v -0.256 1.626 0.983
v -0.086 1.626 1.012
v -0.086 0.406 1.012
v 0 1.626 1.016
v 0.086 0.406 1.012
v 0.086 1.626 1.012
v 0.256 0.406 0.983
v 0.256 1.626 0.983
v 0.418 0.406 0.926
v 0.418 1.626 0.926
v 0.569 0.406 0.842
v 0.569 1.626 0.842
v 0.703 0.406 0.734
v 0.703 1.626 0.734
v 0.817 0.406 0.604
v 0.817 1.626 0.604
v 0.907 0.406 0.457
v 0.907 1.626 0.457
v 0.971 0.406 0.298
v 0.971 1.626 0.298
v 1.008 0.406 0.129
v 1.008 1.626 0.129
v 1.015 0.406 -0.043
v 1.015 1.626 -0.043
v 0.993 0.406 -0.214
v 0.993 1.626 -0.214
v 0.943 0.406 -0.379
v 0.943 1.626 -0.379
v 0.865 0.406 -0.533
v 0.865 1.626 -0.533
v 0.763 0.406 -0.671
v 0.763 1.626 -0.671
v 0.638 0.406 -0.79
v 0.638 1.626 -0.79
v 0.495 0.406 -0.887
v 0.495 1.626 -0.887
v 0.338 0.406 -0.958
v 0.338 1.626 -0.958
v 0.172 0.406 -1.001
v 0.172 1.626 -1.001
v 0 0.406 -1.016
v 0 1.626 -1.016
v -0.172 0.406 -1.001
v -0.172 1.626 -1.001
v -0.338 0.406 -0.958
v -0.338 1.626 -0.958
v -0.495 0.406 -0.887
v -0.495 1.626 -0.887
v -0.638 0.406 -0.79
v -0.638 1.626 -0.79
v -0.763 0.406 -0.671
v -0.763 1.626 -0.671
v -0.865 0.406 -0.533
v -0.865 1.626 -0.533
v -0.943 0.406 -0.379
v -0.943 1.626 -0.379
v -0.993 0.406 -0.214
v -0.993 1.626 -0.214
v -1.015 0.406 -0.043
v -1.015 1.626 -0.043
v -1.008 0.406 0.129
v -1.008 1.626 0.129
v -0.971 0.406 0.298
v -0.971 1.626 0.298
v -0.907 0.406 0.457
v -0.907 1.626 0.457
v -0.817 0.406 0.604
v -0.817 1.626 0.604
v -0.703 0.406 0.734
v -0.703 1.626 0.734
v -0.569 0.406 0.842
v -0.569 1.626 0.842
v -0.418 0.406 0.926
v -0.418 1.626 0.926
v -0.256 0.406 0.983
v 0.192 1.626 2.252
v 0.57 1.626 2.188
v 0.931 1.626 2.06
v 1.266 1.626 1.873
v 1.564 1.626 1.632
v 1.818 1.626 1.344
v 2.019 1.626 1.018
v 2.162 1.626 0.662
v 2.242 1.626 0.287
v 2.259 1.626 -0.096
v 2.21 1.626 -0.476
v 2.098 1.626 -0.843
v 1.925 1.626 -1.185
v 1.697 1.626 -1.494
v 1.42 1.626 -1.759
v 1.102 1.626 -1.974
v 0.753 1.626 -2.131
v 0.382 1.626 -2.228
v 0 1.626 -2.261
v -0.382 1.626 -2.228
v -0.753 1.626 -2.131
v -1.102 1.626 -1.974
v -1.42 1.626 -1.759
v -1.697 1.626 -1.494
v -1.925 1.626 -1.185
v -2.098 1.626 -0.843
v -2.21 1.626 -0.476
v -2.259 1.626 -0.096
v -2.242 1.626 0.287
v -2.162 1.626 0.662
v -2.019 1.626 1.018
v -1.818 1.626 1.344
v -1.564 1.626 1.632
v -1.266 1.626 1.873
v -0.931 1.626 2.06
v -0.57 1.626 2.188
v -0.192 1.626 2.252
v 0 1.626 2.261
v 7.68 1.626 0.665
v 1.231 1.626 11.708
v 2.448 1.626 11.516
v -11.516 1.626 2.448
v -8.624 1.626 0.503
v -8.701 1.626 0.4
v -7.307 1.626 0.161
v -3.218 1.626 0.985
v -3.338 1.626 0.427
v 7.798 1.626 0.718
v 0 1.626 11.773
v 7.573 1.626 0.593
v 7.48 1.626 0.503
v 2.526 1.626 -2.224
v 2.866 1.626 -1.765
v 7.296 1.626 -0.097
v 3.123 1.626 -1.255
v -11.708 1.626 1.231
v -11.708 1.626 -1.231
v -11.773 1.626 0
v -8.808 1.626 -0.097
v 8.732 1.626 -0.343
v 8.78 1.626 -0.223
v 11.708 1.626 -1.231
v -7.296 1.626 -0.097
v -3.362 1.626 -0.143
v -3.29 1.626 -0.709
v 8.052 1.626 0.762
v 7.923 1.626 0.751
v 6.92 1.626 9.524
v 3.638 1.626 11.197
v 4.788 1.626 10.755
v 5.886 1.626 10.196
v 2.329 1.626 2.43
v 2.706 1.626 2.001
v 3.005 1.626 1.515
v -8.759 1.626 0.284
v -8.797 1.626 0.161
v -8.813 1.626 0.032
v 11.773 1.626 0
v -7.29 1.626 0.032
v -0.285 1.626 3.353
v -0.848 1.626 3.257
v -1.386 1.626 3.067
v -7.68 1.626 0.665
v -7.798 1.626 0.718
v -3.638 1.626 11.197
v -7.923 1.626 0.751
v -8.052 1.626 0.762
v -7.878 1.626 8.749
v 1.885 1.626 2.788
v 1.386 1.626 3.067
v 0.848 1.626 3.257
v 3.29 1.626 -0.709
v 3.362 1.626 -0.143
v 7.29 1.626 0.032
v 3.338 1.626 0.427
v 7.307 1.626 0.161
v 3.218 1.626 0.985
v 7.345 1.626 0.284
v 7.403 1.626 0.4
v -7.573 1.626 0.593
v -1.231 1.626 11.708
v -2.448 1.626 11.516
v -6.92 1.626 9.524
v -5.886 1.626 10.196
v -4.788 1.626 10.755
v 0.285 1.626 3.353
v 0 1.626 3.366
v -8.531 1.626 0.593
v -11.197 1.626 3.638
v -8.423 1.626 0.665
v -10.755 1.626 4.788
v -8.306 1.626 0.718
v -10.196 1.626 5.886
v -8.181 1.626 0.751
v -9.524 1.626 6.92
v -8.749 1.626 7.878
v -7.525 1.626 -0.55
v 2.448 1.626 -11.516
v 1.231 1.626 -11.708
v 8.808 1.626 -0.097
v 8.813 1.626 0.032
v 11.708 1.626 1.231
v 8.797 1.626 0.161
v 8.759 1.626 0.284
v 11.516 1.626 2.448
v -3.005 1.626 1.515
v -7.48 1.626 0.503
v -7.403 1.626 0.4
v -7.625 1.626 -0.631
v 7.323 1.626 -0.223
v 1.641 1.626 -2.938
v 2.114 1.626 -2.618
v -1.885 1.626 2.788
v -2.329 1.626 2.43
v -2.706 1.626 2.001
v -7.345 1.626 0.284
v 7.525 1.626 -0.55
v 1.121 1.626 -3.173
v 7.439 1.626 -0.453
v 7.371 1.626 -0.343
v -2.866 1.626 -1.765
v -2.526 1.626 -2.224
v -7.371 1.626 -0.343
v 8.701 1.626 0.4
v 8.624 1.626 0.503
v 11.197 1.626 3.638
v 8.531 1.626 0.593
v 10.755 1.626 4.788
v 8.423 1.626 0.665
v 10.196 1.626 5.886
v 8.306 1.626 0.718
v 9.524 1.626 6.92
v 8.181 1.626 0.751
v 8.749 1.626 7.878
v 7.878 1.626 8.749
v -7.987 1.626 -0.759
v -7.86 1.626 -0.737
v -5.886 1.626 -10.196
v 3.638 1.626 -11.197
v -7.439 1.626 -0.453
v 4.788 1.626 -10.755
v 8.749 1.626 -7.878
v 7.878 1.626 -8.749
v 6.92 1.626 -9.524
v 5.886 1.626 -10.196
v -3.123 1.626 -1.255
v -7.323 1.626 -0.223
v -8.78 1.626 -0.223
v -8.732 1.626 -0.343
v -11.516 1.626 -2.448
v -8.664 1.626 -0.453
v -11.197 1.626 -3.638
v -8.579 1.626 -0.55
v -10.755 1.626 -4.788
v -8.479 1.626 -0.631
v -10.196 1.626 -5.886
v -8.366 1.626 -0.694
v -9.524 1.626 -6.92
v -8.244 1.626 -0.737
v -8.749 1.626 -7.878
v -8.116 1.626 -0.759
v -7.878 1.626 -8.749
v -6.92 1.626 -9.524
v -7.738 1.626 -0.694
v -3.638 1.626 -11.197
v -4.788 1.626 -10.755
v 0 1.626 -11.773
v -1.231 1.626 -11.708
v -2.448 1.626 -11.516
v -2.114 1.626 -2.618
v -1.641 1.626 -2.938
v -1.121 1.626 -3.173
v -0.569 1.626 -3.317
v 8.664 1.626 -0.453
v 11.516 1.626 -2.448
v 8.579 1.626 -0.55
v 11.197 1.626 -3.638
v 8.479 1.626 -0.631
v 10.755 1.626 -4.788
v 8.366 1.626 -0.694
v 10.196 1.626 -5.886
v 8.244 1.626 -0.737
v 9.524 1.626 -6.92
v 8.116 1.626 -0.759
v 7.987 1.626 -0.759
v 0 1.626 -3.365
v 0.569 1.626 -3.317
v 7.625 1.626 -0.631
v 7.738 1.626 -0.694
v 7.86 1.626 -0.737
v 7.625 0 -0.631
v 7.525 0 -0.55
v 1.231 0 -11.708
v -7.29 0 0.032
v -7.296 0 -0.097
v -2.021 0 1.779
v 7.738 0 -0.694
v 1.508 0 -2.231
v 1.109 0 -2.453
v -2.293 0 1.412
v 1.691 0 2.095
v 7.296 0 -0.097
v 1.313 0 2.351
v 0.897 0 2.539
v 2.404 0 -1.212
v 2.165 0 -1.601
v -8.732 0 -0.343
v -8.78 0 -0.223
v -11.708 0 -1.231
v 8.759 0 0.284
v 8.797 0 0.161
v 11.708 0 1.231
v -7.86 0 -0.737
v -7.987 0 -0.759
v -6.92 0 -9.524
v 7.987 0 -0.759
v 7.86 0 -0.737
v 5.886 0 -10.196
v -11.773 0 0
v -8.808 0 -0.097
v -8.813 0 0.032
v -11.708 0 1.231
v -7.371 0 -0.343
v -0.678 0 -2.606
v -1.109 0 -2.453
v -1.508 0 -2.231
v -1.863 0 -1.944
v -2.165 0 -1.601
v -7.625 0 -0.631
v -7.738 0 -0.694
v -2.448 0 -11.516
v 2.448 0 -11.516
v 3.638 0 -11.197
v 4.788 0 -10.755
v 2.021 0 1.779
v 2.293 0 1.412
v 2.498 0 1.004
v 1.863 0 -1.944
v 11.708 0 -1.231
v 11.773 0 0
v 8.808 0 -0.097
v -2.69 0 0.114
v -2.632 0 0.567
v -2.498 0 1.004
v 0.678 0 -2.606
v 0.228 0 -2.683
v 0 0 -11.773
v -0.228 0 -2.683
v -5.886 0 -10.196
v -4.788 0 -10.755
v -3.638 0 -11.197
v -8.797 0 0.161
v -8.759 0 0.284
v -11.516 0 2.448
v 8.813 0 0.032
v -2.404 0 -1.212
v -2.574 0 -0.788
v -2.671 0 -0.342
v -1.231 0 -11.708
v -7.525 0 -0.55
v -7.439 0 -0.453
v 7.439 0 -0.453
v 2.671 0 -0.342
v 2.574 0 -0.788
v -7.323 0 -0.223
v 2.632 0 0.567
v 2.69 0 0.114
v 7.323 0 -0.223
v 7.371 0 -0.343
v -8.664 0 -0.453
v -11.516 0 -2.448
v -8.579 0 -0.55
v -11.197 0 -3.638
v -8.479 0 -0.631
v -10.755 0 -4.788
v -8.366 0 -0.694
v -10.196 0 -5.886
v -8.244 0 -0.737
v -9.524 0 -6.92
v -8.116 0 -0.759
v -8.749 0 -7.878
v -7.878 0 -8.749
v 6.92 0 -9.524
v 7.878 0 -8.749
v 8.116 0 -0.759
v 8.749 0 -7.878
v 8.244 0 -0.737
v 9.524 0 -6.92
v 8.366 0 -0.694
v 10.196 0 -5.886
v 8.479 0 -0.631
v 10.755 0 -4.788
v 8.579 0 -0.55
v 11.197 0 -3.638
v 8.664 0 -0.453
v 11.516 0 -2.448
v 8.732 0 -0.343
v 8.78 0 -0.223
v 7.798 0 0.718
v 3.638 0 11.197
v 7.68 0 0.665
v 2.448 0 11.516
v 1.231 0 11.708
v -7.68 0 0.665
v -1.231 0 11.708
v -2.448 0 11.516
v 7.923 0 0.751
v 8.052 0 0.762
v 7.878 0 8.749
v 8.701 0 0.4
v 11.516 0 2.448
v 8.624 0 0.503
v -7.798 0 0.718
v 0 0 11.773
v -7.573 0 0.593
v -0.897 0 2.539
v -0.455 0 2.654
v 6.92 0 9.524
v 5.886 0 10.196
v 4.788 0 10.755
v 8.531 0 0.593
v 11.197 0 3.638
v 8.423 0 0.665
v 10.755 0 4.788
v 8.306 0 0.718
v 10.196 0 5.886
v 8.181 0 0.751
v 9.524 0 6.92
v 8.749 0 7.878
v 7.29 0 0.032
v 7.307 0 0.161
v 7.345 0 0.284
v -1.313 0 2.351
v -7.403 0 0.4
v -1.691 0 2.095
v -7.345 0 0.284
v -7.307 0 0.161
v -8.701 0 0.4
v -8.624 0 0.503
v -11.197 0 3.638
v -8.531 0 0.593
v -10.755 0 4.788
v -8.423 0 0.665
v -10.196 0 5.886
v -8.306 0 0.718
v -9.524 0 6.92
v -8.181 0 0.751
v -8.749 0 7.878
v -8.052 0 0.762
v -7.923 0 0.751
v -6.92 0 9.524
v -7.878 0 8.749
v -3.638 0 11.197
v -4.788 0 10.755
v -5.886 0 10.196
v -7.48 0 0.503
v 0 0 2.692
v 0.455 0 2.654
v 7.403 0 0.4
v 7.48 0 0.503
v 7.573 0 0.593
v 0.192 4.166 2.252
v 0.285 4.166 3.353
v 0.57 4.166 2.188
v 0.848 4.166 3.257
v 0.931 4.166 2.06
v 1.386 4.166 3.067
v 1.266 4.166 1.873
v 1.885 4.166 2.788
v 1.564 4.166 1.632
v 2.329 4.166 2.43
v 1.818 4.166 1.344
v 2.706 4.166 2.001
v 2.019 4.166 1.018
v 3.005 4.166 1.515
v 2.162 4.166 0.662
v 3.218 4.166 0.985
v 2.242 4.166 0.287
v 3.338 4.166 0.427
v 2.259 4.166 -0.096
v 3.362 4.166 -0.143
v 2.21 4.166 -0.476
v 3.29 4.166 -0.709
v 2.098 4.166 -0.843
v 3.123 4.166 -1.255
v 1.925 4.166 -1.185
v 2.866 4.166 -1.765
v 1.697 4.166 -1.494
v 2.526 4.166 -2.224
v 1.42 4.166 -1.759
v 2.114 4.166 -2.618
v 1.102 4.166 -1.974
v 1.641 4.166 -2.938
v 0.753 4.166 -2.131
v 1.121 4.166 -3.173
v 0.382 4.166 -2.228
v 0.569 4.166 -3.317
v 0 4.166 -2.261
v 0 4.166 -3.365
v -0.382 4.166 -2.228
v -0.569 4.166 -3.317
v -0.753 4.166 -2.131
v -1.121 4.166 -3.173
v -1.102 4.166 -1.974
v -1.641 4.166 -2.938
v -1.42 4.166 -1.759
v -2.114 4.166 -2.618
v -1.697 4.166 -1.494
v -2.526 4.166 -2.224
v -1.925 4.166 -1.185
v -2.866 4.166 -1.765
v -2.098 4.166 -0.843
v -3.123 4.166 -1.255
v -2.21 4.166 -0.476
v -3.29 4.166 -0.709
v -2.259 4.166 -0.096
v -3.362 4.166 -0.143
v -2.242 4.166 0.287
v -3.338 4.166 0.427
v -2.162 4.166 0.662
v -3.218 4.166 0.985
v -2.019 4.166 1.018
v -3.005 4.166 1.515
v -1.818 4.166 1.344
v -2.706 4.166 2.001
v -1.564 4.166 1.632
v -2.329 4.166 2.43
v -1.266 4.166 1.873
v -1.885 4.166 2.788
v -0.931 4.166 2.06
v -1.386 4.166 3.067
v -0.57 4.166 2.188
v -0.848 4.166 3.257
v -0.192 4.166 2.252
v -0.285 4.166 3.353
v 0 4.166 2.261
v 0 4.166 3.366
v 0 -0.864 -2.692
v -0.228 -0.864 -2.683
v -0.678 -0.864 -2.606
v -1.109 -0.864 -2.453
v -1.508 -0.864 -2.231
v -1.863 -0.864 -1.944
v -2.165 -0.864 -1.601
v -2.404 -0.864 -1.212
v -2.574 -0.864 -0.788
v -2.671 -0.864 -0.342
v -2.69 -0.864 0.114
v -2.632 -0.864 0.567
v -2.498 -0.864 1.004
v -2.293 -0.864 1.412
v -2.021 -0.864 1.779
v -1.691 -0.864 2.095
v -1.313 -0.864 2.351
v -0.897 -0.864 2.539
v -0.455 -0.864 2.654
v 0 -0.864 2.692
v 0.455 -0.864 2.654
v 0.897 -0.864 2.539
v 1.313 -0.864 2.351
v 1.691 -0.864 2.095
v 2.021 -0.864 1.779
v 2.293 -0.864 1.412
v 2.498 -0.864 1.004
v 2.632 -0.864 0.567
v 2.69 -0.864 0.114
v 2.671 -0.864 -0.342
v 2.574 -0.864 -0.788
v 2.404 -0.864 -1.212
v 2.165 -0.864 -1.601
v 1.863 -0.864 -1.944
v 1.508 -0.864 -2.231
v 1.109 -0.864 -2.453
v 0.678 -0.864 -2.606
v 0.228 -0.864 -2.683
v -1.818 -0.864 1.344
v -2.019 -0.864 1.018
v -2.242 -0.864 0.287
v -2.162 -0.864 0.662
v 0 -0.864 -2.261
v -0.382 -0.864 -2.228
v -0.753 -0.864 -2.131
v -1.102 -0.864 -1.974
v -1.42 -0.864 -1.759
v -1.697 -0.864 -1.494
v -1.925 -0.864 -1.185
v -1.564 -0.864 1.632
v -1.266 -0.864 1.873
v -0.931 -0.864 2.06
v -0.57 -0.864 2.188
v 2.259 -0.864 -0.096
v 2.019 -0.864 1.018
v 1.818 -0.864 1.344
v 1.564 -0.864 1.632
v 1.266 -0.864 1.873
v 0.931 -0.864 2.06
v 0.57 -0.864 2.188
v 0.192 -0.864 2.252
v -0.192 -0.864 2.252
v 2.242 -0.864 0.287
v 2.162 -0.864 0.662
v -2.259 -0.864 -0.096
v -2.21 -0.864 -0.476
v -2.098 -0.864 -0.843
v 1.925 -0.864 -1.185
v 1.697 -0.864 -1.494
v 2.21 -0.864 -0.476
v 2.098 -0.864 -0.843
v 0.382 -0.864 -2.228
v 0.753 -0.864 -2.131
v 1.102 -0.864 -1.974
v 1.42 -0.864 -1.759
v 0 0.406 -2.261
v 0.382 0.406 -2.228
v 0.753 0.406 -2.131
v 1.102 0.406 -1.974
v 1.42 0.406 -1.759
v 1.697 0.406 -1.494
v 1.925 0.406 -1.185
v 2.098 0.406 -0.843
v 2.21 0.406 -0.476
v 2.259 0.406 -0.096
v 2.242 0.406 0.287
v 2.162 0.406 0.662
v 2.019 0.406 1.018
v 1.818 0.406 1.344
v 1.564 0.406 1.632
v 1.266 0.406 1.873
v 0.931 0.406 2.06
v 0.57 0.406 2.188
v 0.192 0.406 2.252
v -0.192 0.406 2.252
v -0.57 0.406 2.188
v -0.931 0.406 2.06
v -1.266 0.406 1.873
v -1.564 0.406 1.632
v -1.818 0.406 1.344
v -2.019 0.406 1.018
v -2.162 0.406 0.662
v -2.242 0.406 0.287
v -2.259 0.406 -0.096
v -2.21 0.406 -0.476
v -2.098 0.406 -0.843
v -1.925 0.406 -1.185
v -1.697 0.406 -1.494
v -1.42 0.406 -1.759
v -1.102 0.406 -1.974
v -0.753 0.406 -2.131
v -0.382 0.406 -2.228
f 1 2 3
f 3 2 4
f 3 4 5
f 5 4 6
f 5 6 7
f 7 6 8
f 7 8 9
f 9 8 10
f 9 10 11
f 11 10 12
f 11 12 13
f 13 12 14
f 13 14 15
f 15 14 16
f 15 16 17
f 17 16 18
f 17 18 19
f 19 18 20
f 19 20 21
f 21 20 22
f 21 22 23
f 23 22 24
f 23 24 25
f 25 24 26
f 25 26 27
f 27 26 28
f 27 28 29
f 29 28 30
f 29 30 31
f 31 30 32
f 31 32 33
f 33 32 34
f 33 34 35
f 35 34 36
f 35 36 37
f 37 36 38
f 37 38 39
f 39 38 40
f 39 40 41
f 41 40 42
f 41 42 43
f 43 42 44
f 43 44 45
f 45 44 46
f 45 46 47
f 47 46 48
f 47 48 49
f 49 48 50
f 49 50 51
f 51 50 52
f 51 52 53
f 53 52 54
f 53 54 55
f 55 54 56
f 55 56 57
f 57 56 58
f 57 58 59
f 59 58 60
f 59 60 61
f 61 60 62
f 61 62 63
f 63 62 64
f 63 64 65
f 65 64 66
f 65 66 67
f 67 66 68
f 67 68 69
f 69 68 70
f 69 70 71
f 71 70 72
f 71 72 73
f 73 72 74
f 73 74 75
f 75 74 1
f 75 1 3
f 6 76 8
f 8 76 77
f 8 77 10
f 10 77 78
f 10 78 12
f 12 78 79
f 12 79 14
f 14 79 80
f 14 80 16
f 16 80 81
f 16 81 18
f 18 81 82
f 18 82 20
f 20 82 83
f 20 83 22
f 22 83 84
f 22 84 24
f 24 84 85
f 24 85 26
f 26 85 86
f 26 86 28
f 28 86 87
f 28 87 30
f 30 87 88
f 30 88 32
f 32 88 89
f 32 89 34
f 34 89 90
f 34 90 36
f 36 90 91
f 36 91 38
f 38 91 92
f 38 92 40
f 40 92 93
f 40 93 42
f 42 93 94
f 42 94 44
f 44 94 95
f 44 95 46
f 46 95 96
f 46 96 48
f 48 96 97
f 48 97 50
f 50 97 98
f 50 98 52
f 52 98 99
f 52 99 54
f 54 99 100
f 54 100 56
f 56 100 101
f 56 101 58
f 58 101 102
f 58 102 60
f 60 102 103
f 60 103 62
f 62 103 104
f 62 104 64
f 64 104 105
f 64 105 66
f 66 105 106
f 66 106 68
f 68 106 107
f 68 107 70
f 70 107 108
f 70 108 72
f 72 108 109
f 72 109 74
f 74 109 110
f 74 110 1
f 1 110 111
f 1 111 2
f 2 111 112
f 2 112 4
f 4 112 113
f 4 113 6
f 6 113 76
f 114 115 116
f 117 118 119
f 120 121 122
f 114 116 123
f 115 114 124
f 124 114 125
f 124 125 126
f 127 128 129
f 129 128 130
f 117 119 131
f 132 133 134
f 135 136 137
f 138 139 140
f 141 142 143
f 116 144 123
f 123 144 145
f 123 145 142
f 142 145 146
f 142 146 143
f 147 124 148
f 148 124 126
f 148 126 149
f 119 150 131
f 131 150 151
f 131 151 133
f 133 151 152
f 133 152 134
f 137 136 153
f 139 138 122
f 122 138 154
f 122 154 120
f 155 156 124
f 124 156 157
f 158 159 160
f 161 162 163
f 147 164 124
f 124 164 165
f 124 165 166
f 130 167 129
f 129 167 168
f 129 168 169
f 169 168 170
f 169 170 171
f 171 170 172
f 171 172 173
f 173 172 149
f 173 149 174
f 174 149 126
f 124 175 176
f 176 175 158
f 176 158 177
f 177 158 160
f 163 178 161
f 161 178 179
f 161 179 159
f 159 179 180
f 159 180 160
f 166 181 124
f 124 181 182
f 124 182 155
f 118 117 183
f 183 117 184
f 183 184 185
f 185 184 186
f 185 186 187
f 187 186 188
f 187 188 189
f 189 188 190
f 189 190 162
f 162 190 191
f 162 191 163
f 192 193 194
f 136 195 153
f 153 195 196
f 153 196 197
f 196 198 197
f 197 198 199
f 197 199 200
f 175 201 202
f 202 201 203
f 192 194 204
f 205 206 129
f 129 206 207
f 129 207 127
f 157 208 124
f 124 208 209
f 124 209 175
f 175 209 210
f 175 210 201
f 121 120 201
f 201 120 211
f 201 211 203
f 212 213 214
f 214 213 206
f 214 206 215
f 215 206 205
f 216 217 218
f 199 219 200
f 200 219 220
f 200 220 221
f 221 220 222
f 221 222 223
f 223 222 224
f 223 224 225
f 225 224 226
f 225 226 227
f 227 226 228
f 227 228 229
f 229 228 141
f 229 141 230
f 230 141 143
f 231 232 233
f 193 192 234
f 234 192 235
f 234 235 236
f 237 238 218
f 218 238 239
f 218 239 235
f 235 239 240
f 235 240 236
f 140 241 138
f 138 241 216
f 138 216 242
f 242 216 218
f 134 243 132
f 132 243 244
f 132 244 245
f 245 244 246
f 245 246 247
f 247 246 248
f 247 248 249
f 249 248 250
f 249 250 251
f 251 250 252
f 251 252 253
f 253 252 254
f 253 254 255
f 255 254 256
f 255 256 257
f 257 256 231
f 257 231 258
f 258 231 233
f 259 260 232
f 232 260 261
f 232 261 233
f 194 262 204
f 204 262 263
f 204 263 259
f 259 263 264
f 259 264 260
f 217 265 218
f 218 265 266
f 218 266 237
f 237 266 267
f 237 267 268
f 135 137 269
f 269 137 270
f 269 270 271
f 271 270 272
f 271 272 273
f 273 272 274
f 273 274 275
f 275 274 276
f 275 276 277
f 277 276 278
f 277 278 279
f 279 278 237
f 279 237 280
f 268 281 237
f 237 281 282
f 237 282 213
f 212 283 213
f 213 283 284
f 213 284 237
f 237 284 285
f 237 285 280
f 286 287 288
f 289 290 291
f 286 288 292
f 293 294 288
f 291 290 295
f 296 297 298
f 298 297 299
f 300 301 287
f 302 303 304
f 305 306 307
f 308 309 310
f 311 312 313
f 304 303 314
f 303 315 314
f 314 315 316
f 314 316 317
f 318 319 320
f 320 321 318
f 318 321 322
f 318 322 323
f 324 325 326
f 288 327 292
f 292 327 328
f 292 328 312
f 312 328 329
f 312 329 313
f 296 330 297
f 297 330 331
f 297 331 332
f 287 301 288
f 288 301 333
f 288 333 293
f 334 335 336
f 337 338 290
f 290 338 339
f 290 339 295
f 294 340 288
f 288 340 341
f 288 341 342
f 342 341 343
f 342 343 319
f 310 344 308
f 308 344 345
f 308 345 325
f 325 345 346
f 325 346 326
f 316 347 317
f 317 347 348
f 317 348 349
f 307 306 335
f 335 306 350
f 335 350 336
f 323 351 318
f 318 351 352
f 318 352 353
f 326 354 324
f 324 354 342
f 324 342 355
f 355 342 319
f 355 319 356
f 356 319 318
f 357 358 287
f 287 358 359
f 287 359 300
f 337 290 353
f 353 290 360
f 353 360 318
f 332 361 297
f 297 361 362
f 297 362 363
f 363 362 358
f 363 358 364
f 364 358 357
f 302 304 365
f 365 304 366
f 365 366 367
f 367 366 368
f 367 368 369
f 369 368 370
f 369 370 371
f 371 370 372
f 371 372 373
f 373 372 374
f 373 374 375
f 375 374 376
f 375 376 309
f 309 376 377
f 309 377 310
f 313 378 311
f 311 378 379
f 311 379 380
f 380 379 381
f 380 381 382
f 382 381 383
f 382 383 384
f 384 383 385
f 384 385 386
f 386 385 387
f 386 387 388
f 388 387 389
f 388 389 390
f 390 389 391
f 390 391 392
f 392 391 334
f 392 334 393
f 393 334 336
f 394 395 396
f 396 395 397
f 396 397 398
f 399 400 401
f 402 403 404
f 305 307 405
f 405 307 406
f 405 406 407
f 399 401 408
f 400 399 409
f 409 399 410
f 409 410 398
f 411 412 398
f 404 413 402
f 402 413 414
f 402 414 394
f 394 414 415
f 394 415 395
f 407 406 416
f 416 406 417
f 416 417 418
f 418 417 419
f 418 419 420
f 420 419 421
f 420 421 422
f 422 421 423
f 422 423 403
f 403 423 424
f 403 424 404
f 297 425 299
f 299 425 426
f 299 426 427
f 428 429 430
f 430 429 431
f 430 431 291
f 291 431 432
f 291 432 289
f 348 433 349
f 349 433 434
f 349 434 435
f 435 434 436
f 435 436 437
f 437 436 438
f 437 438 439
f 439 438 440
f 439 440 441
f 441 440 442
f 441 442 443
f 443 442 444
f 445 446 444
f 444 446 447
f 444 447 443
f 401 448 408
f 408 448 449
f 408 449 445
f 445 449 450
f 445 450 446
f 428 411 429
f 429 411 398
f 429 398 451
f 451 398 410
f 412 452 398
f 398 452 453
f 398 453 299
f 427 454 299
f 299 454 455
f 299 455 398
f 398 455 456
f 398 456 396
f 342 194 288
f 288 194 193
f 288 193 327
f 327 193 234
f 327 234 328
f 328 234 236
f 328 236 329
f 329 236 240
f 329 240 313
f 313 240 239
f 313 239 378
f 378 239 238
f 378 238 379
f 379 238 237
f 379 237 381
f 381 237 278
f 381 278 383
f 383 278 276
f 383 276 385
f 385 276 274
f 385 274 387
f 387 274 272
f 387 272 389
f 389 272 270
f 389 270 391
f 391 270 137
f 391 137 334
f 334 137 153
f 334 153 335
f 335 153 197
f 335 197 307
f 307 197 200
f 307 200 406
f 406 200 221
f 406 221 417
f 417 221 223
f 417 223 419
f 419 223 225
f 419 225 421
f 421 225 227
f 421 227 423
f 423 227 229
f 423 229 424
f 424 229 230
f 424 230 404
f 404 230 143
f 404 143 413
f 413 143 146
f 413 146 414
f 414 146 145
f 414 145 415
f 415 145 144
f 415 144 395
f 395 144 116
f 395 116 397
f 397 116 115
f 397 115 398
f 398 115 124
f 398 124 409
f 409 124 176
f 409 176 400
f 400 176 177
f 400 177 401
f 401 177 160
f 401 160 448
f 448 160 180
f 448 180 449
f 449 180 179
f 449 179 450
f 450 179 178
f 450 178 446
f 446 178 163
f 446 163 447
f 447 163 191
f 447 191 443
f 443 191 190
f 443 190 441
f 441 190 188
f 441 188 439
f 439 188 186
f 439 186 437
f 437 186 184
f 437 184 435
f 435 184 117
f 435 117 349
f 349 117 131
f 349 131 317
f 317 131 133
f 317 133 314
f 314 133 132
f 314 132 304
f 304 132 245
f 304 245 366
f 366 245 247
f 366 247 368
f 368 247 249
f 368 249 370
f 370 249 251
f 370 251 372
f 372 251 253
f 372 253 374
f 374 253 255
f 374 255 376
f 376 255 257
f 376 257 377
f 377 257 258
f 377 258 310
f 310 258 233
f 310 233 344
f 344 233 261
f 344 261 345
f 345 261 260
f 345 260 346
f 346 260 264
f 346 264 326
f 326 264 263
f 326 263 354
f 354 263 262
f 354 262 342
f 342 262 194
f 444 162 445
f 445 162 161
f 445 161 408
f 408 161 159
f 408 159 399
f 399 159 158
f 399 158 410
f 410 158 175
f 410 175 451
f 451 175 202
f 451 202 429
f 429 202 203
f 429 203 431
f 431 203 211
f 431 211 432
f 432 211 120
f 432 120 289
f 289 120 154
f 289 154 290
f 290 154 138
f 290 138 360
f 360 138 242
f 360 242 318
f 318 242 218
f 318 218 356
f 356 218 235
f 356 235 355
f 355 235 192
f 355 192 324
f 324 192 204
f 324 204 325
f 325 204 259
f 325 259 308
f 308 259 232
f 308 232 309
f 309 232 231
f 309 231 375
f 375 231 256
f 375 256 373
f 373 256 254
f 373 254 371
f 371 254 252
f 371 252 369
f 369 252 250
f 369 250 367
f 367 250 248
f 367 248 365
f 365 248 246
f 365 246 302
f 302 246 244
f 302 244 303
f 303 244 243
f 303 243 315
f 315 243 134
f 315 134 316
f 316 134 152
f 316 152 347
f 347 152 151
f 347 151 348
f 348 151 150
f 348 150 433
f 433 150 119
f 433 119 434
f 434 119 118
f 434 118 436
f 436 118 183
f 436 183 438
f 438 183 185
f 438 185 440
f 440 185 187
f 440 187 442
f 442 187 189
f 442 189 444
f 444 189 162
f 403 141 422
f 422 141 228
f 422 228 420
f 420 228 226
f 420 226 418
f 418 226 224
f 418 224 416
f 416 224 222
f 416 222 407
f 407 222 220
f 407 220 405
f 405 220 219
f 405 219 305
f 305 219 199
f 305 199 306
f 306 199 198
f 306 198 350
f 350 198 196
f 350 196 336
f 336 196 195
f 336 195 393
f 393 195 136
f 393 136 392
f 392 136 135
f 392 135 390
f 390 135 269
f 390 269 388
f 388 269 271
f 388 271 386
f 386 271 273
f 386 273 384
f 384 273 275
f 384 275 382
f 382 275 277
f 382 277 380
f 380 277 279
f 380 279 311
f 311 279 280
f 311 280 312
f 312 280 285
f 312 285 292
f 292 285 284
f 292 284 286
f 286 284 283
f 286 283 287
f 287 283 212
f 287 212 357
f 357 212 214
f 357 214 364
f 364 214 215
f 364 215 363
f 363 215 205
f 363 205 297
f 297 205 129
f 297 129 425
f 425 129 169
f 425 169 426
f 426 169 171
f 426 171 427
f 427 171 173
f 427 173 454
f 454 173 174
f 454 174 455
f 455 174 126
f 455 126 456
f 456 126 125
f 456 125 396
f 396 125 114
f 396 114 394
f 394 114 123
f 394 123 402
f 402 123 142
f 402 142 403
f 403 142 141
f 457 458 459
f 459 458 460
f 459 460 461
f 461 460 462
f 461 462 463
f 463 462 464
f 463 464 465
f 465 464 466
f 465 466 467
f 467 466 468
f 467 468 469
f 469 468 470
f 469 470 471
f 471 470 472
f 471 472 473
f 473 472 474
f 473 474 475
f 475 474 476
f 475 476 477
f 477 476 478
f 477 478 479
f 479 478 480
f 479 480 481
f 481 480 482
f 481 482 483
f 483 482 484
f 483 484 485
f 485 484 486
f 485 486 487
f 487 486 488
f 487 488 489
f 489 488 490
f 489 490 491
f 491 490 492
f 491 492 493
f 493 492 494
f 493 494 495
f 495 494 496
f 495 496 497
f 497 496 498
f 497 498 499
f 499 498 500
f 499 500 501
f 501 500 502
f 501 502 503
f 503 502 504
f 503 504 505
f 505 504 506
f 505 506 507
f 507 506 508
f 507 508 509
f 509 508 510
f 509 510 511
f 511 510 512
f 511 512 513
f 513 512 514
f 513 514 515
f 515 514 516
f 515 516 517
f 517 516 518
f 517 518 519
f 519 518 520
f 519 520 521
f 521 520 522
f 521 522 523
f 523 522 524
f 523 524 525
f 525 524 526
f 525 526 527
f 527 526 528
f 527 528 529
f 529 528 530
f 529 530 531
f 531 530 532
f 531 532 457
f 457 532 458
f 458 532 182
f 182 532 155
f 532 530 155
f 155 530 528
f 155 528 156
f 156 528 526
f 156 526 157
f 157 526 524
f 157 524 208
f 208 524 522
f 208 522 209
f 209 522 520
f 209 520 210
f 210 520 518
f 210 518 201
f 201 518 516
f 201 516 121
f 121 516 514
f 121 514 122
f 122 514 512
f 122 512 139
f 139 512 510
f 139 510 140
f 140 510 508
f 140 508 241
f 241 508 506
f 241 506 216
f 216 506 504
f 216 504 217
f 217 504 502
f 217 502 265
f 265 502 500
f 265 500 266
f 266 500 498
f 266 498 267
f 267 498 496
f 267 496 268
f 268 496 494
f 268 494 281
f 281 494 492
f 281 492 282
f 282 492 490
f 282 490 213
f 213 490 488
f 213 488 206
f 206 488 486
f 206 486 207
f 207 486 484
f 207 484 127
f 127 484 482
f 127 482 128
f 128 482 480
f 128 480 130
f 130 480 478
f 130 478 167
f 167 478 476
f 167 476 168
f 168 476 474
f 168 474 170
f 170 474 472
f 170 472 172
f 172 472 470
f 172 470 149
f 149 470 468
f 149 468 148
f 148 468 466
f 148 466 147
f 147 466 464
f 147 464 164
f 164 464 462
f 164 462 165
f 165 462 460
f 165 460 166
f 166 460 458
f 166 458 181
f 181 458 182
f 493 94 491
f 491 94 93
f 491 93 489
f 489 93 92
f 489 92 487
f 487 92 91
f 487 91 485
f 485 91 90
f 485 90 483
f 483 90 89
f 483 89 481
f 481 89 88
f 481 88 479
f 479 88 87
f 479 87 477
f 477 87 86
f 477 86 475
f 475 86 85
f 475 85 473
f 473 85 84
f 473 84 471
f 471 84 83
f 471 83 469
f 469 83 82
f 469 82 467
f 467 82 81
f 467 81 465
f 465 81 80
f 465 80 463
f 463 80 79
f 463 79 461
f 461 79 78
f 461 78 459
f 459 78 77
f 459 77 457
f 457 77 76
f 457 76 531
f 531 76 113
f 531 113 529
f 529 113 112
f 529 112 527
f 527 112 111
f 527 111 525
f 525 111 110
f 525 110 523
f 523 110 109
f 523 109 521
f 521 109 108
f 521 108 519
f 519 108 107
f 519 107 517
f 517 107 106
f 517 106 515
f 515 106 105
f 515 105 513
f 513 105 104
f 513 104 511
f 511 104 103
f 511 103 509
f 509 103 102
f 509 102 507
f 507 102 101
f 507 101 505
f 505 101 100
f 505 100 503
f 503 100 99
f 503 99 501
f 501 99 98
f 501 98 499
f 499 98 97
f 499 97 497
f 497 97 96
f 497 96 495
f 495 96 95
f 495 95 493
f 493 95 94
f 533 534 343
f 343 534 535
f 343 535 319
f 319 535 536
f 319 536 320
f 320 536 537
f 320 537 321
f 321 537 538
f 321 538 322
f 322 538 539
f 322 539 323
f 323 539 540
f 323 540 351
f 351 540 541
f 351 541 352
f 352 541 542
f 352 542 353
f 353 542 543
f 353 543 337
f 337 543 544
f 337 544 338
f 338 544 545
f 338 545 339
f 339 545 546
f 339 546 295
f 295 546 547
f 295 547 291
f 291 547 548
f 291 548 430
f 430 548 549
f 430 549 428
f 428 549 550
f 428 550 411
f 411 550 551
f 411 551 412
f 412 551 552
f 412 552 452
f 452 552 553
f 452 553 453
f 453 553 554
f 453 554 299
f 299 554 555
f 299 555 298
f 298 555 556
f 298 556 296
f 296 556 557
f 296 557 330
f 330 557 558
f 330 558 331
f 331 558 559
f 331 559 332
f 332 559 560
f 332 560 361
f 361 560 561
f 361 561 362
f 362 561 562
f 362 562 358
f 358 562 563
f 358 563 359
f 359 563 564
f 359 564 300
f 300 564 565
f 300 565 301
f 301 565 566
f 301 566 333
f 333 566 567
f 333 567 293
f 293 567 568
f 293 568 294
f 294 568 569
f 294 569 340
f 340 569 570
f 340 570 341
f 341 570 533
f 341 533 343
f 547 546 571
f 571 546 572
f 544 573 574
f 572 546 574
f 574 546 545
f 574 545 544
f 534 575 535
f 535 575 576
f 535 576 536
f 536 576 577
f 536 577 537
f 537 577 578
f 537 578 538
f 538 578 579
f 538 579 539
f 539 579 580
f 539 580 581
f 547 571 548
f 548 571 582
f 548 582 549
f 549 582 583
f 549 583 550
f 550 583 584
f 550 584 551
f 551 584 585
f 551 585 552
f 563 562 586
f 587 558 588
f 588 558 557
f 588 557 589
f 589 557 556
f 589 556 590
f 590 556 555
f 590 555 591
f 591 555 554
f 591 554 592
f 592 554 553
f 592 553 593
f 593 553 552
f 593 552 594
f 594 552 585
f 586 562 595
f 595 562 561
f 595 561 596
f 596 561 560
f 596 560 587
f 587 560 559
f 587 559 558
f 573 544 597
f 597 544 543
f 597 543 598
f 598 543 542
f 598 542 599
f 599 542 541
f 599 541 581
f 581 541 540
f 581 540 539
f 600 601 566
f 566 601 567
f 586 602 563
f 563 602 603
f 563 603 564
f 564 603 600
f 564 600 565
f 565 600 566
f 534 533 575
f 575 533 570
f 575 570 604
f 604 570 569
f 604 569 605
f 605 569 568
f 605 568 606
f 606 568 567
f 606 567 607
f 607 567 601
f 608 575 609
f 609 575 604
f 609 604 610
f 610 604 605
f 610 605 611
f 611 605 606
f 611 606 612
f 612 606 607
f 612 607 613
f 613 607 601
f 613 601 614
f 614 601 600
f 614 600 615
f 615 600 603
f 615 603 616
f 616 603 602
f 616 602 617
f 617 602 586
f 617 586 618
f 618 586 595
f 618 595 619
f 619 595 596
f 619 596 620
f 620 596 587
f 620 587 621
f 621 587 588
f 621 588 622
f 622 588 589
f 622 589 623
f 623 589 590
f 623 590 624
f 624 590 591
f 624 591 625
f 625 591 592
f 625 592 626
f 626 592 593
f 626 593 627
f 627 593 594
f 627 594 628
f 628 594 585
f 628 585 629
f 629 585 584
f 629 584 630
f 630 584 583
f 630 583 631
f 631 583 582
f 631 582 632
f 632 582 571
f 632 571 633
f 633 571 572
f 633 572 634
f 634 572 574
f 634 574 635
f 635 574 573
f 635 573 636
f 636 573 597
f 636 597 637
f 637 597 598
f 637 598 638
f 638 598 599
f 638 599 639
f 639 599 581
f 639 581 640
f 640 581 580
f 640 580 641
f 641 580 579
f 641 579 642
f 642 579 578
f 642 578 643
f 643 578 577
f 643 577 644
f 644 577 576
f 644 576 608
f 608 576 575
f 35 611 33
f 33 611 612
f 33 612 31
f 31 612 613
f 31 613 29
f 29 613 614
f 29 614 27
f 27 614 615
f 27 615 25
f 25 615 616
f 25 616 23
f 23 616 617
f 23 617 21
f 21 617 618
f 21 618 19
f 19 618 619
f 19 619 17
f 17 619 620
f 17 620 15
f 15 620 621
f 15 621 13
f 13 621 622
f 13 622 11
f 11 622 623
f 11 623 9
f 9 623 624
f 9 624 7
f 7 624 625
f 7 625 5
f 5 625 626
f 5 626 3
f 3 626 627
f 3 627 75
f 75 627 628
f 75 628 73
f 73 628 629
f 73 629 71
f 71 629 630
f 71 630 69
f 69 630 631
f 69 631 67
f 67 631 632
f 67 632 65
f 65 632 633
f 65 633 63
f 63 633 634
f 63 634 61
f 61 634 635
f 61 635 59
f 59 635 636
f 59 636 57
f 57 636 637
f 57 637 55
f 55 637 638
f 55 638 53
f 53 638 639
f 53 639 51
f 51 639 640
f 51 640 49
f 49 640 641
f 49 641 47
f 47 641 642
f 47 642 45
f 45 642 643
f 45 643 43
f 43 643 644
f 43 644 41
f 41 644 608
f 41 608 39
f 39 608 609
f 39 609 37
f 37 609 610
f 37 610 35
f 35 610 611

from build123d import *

# Parameters (mm, degrees)
SKETCH1_R           = 11.7729
SKETCH1_R_2         = 1.016
BOSS_EXTRUDE1_DEPTH = 1.6256
SKETCH2_R           = 0.762
CUT_EXTRUDE1_DEPTH  = 17.728566112
SKETCH3_R           = 3.3655
SKETCH3_R_2         = 2.2606
BOSS_EXTRUDE2_DEPTH = 2.54
SKETCH4_R           = 2.6924
BOSS_EXTRUDE3_DEPTH = 0.8636
SKETCH5_R           = 2.2606
CUT_EXTRUDE2_DEPTH  = 1.27


with BuildPart() as part:
    # Sketch1 → Boss-Extrude1 (new body)
    with BuildSketch(Plane(origin=(0, 0, 0), x_dir=(1, 0, 0), z_dir=(0, 1, 0))):
        with Locations(Location((0, 0, 0), (0, 0, 270))):
            Circle(SKETCH1_R)
        with Locations(Location((0, 0, 0), (0, 0, 270))):
            Circle(SKETCH1_R_2, mode=Mode.SUBTRACT)
    extrude(amount=BOSS_EXTRUDE1_DEPTH)

    # Sketch2 → Cut-Extrude1 (cut, through all)
    with BuildSketch(Plane(origin=(0, 1.6256, 0), x_dir=(1, 0, 0), z_dir=(0, 1, 0))):
        with Locations(Location((8.0518, 0, 0), (0, 0, 270))):
            Circle(SKETCH2_R)
        with Locations(Location((-8.0518, 0, 0), (0, 0, 270))):
            Circle(SKETCH2_R)
    extrude(amount=-CUT_EXTRUDE1_DEPTH, mode=Mode.SUBTRACT)

    # Sketch3 → Boss-Extrude2 (add)
    with BuildSketch(Plane(origin=(0, 1.6256, 0), x_dir=(1, 0, 0), z_dir=(0, 1, 0))):
        with Locations(Location((0, 0, 0), (0, 0, 270))):
            Circle(SKETCH3_R)
        with Locations(Location((0, 0, 0), (0, 0, 270))):
            Circle(SKETCH3_R_2, mode=Mode.SUBTRACT)
    extrude(amount=BOSS_EXTRUDE2_DEPTH)

    # Sketch4 → Boss-Extrude3 (add)
    with BuildSketch(Plane.XZ):
        with Locations(Location((0, 0, 0), (0, 0, 90))):
            Circle(SKETCH4_R)
    extrude(amount=BOSS_EXTRUDE3_DEPTH)

    # Sketch5 → Cut-Extrude2 (cut)
    with BuildSketch(Plane.XZ.offset(0.8636)):
        with Locations(Location((0, 0, 0), (0, 0, 90))):
            Circle(SKETCH5_R)
    extrude(amount=-CUT_EXTRUDE2_DEPTH, mode=Mode.SUBTRACT)


solid = part.part
